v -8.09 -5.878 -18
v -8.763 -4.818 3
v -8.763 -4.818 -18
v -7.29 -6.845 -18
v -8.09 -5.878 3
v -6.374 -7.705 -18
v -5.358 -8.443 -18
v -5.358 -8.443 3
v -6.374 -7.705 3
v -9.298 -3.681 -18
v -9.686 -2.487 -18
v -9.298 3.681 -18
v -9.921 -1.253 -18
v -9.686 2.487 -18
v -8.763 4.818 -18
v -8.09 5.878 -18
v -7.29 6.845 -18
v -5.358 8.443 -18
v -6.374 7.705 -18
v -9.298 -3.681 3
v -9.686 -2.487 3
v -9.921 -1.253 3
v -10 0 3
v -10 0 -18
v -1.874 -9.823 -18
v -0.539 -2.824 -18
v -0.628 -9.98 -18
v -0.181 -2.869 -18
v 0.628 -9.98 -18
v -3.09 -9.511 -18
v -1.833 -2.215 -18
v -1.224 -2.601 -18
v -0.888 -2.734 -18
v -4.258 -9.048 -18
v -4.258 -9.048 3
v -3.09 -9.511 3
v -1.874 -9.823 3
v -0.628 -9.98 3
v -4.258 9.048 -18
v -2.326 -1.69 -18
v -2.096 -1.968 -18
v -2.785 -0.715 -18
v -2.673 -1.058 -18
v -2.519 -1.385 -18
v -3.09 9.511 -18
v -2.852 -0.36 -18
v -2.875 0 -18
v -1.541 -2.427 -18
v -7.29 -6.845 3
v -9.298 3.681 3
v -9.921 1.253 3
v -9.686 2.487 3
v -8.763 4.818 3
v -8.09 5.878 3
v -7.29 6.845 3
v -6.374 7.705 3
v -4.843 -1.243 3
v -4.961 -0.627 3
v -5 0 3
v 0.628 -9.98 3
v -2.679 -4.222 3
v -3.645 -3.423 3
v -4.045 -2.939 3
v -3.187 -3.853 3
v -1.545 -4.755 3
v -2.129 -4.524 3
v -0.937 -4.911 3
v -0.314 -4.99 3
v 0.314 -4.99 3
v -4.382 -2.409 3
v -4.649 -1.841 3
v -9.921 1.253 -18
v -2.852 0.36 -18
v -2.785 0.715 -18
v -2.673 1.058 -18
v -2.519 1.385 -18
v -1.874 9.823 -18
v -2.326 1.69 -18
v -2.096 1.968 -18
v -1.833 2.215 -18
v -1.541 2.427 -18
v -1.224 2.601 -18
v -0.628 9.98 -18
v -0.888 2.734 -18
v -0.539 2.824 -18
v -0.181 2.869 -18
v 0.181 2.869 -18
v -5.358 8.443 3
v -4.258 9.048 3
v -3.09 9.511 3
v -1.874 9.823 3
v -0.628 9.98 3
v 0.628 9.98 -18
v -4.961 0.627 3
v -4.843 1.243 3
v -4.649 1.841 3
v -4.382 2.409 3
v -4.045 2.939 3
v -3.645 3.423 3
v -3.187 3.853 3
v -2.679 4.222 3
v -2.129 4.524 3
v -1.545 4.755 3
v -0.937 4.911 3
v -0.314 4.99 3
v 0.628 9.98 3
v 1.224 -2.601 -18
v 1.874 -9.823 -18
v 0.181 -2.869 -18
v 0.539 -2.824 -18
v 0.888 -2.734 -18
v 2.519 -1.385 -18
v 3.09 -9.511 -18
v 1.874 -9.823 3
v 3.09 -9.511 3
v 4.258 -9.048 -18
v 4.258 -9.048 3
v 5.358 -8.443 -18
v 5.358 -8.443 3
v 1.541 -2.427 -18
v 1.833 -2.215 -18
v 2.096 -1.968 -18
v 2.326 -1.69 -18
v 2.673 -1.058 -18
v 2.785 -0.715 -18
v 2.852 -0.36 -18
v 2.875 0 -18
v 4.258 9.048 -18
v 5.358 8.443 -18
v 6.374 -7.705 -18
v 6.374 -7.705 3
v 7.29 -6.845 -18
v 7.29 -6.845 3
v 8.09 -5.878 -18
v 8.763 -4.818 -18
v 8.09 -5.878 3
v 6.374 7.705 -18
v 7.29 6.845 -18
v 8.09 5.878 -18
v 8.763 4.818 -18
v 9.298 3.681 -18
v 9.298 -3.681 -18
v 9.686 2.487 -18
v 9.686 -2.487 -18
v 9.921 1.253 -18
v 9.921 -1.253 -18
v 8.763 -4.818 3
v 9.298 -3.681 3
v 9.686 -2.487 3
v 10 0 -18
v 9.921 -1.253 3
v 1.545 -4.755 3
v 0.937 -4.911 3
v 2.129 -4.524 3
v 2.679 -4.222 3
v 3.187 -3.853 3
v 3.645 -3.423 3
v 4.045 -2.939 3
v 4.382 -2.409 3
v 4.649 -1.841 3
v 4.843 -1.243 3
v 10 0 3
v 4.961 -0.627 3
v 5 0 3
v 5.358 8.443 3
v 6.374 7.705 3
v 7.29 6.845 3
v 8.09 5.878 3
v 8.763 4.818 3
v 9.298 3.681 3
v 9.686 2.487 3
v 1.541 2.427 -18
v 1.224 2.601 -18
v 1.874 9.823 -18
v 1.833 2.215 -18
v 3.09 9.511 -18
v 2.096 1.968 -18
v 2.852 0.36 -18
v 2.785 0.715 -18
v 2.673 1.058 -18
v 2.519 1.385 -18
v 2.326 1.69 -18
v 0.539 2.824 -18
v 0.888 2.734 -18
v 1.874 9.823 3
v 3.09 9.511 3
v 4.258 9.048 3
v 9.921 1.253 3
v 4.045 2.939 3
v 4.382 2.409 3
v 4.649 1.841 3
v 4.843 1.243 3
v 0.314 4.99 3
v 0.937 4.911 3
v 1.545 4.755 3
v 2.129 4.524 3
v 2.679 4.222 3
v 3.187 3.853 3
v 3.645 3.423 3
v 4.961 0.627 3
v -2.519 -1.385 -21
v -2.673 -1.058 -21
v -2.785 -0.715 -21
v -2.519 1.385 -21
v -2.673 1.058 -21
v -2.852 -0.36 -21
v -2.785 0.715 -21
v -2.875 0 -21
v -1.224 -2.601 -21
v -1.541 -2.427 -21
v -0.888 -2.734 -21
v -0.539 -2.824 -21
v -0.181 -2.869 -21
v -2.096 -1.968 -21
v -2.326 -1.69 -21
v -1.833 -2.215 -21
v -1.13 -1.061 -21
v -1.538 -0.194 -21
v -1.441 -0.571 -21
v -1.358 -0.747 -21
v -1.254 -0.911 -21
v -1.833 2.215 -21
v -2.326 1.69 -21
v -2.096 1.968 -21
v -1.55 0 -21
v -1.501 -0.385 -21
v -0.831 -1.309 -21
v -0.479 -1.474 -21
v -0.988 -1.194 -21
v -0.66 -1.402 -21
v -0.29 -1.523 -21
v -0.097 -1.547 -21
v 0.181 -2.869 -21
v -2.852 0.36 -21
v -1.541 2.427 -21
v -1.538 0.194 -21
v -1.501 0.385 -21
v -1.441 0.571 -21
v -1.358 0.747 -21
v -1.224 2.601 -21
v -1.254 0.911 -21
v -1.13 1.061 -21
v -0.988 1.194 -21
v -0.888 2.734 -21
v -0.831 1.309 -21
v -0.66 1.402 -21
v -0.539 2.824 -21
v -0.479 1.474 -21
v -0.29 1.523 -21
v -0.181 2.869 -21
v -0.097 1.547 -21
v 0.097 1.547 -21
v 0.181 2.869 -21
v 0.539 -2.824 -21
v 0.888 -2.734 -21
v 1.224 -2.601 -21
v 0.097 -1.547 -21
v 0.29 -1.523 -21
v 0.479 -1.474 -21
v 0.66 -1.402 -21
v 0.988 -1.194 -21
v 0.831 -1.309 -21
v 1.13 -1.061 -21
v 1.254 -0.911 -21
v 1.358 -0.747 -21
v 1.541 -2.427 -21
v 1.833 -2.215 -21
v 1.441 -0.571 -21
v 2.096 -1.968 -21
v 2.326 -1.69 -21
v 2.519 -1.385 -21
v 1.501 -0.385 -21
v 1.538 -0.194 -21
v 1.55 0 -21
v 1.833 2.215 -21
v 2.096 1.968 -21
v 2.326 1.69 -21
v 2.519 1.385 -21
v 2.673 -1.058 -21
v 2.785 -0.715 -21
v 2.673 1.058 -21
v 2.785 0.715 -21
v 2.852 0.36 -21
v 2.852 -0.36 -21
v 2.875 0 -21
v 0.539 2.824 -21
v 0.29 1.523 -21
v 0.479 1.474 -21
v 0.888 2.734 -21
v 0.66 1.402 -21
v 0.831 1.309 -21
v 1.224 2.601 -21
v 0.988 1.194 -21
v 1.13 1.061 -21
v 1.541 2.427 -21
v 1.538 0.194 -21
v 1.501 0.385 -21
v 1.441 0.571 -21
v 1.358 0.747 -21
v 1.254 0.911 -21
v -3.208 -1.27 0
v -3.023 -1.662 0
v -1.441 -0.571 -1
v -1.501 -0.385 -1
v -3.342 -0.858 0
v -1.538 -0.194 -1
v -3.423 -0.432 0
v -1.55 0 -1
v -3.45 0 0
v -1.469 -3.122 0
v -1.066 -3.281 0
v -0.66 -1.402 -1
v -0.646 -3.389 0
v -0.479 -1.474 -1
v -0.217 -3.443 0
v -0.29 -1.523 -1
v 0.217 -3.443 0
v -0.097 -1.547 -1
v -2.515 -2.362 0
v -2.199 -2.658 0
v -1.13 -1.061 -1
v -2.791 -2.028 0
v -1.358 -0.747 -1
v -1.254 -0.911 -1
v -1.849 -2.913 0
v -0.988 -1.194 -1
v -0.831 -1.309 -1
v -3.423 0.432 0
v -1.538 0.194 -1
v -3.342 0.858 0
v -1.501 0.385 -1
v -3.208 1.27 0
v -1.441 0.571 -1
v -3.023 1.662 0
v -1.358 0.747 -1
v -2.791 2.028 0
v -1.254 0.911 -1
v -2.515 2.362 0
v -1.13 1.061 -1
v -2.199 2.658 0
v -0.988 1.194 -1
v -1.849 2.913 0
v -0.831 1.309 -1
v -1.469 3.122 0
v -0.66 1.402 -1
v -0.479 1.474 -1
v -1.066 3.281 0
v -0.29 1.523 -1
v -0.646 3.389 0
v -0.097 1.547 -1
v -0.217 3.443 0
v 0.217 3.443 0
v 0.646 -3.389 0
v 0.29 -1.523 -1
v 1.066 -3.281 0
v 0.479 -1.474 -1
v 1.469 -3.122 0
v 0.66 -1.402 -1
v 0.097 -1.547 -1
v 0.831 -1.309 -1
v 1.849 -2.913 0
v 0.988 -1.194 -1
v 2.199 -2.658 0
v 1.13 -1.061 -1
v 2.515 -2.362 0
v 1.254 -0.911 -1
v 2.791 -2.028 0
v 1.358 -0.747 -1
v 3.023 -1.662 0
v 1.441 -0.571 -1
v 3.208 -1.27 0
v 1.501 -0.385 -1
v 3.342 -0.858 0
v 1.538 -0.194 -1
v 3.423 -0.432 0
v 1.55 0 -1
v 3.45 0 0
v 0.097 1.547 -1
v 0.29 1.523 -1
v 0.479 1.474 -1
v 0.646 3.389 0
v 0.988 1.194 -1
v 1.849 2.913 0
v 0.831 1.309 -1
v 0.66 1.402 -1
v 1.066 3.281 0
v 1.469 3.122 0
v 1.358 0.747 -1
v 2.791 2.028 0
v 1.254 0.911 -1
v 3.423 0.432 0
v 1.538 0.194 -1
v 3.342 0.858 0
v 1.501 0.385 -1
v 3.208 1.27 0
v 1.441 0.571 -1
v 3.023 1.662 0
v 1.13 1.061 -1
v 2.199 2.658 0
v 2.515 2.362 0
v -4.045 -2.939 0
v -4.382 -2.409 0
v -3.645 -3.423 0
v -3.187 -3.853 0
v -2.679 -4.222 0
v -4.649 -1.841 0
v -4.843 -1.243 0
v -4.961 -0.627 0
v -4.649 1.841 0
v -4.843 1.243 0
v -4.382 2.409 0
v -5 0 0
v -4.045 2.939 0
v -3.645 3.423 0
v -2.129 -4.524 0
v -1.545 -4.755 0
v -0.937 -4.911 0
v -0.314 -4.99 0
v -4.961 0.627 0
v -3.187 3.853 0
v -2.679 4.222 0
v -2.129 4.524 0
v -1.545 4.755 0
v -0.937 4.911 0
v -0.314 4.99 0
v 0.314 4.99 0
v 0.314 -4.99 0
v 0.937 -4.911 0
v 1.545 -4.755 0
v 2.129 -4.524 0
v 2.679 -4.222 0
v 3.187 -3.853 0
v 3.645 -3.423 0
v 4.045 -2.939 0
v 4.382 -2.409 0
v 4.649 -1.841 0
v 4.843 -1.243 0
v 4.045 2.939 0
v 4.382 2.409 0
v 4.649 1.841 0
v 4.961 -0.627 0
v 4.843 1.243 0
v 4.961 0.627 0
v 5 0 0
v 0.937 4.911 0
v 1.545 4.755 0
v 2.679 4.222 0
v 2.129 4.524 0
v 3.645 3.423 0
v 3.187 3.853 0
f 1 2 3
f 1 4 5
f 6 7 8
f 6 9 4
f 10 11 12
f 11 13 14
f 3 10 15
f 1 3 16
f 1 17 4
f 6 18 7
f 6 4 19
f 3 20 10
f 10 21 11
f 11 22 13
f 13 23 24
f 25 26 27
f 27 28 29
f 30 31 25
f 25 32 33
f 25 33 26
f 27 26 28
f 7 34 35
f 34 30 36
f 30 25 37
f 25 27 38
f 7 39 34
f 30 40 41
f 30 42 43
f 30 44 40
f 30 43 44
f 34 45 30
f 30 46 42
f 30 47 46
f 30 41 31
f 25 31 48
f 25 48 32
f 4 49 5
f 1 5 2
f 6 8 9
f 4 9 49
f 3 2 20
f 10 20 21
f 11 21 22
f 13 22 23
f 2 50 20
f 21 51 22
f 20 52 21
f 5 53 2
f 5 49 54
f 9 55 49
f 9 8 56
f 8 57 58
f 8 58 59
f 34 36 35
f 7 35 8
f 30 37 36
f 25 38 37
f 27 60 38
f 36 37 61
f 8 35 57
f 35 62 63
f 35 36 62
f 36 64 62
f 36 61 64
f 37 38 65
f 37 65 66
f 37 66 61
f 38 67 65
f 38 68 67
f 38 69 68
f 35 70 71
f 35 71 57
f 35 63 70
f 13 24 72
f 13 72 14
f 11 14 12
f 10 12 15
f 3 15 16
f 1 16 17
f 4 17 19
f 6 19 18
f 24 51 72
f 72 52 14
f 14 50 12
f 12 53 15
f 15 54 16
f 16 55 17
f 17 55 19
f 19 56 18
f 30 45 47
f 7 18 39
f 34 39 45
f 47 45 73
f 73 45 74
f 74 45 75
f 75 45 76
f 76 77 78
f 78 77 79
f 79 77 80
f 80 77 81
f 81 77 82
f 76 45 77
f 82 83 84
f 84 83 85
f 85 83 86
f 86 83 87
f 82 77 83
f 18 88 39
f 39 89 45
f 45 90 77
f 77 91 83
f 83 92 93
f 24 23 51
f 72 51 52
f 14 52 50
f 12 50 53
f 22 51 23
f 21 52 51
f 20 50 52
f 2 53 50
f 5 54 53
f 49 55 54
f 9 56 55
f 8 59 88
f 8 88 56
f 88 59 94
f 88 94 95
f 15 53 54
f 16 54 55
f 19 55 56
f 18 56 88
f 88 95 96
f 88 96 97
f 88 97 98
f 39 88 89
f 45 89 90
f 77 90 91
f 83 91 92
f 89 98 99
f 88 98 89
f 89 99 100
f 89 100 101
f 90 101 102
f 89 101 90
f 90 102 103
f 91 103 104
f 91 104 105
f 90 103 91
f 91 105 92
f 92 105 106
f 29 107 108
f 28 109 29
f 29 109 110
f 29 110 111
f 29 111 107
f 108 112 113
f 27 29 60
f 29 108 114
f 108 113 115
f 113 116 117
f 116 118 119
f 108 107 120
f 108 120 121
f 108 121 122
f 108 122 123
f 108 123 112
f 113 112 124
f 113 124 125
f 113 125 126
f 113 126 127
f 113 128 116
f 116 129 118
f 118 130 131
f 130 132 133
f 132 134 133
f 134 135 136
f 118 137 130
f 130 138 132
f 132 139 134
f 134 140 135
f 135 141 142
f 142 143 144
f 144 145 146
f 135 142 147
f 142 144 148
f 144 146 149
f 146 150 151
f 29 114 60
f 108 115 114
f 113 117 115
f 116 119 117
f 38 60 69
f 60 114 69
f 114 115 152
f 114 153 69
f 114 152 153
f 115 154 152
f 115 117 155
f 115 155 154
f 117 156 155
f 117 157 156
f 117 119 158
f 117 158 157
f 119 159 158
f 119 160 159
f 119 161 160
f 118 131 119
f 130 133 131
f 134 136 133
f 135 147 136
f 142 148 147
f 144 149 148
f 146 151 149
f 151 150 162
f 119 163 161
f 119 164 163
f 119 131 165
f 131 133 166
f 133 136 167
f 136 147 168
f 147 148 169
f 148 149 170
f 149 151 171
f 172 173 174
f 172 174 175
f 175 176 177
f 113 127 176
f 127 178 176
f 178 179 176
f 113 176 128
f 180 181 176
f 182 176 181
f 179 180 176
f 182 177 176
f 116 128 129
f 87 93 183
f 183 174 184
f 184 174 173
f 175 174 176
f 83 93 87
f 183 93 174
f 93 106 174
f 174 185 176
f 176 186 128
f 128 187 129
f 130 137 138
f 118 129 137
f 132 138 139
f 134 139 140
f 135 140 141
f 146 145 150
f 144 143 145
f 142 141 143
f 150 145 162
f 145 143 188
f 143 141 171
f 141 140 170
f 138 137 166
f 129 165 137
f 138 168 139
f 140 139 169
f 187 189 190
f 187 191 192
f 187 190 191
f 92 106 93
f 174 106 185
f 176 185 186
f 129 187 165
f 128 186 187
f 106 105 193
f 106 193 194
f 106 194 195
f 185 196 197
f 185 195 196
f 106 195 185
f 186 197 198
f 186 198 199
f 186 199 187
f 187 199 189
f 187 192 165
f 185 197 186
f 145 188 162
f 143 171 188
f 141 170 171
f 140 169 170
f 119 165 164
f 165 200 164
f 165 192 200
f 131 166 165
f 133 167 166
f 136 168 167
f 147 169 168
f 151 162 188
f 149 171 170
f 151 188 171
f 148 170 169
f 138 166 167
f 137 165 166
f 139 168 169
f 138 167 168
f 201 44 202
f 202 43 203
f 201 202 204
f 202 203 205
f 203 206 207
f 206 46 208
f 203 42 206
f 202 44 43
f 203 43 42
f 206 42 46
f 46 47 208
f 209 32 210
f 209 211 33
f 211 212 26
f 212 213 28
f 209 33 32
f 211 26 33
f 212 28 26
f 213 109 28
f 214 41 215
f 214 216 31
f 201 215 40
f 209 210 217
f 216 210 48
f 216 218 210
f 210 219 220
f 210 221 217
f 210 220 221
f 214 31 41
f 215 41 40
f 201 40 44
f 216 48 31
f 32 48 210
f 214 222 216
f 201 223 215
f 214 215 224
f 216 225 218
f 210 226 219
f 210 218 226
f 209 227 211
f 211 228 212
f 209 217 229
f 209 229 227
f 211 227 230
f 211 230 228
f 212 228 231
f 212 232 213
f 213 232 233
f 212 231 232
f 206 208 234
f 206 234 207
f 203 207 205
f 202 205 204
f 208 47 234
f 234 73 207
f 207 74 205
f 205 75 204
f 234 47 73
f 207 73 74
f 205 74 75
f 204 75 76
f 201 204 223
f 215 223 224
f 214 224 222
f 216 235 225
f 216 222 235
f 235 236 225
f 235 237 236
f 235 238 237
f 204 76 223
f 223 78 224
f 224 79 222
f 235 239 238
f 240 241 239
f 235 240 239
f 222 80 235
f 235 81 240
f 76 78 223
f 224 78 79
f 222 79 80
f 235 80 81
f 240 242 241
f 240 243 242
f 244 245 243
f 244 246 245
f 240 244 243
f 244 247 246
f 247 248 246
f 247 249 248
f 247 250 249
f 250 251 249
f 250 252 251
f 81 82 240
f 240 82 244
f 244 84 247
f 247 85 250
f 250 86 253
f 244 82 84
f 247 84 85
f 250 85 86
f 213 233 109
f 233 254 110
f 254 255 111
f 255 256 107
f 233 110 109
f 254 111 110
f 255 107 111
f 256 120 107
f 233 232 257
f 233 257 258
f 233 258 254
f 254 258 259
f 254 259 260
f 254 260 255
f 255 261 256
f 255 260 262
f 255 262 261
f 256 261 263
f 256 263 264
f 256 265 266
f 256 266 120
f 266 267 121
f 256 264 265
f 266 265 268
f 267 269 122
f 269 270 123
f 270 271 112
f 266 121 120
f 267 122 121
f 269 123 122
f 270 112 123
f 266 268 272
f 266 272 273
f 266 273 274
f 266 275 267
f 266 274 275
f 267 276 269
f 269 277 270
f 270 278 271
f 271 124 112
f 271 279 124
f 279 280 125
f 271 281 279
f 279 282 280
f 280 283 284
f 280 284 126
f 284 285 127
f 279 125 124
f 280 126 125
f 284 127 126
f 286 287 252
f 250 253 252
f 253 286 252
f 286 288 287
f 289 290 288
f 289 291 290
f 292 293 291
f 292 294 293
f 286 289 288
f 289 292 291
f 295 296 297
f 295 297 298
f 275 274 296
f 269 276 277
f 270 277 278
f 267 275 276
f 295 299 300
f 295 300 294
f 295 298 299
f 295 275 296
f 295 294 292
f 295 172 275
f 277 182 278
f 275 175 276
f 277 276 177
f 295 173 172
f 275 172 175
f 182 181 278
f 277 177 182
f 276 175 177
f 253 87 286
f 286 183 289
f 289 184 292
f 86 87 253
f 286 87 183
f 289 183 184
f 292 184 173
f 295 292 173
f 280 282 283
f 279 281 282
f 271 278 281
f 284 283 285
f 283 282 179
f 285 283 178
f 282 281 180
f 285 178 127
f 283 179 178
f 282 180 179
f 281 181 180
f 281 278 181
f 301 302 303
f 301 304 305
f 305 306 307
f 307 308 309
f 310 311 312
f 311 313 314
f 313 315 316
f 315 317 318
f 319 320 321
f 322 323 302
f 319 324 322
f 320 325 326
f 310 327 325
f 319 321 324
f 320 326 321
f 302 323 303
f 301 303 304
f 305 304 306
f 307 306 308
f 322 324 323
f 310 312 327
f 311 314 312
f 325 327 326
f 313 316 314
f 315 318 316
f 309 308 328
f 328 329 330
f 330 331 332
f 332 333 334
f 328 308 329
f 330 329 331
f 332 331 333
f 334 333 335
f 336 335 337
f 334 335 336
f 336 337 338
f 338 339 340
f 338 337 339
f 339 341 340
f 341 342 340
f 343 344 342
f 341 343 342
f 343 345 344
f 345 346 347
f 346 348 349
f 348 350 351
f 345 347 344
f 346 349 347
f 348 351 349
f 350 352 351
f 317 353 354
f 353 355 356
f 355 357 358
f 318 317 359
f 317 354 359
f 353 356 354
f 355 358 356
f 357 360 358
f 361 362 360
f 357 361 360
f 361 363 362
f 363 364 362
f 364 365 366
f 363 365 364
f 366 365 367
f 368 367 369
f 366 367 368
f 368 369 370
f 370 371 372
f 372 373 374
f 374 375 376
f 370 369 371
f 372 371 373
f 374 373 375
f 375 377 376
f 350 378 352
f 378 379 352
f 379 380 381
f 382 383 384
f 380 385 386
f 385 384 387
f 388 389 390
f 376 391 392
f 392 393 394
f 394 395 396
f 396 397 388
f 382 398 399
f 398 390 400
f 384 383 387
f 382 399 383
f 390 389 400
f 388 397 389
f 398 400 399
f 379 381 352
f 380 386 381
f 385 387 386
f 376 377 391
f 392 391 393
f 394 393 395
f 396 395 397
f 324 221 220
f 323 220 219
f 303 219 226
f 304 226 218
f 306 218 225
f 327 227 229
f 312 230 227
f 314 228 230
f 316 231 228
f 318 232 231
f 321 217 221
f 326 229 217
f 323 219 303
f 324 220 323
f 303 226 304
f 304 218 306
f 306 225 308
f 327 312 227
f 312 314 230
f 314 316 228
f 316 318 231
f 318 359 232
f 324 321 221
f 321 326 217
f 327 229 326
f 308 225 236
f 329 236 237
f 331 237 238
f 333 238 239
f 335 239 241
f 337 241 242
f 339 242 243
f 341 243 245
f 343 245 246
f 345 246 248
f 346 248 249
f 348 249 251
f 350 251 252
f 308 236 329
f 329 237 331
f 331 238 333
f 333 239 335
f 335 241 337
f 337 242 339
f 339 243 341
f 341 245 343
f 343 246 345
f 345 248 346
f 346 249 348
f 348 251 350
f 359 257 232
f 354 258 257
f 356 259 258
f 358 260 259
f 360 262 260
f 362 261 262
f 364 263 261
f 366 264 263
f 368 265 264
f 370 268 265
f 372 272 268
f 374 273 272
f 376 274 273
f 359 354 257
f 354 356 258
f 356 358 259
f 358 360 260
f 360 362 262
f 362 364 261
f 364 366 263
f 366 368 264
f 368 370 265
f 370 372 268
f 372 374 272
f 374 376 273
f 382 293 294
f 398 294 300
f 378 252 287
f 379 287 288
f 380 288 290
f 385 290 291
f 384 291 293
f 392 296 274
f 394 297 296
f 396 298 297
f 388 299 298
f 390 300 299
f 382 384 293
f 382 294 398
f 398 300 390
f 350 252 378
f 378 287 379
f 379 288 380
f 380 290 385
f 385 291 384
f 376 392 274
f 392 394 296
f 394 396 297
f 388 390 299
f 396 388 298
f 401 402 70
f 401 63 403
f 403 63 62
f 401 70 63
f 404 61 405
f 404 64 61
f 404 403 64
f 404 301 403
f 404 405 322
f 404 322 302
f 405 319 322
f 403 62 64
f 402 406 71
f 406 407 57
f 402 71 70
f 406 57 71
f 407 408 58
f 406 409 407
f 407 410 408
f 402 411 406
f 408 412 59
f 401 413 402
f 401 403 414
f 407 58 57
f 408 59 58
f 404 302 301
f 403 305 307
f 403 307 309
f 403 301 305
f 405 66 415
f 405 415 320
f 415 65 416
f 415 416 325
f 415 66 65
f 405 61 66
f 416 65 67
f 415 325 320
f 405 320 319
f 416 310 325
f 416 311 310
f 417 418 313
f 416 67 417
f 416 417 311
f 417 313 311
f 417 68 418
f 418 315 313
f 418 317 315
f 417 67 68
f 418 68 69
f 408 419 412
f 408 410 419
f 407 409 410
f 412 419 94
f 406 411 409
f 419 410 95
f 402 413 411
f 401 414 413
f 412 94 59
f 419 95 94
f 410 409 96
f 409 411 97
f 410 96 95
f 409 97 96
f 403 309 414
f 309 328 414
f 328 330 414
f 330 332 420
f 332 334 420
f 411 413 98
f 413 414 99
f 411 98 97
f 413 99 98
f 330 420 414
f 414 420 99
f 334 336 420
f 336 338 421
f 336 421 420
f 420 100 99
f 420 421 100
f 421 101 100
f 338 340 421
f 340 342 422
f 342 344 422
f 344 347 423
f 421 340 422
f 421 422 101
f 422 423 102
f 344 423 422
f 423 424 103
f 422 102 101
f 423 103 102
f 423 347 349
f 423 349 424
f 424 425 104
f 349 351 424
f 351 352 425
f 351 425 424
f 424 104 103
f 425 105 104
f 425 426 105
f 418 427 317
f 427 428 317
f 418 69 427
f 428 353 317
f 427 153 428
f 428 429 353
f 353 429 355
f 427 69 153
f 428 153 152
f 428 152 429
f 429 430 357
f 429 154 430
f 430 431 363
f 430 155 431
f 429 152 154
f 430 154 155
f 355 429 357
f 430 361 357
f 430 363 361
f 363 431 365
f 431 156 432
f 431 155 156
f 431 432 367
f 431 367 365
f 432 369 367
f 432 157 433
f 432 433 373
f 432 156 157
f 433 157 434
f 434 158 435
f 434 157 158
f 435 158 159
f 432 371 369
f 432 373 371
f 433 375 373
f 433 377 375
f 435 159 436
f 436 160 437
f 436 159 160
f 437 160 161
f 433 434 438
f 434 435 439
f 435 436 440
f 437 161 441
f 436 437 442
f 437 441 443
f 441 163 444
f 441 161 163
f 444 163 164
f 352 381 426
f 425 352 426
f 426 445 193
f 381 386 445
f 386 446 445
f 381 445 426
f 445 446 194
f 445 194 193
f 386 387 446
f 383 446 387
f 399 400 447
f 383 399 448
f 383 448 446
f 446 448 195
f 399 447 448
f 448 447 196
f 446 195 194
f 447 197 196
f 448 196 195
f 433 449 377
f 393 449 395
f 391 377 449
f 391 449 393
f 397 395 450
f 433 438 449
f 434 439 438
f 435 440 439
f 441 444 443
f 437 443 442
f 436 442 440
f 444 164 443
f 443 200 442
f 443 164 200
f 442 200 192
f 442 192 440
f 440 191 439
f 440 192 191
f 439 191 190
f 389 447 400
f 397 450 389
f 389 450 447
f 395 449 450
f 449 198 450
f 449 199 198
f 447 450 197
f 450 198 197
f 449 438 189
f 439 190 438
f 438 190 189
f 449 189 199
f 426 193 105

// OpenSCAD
$fn = 50;

difference() {
	union() {
		translate(v = [0, 0, -18.0]) {
			cylinder(h = 21, r = 10.0);
		}
		#translate(v = [0, 0, -21.0]) {
			cylinder(h = 21, r = 2.875);
		}
	}
	union() {
		translate(v = [0, 0, 0]) {
			rotate(a = [0, 0, 0]) {
				difference() {
					union() {
						translate(v = [0, 0, -21.0]) {
							cylinder(h = 21, r = 1.25);
						}
						translate(v = [0, 0, -1.0]) {
							cylinder(h = 1.0, r1 = 1.55, r2 = 3.45);
						}
						translate(v = [0, 0, -21.0]) {
							cylinder(h = 21, r = 1.55);
						}
						translate(v = [0, 0, -21.0]) {
							cylinder(h = 21, r = 1.25);
						}
					}
					union();
				}
			}
		}
		#cylinder(h = 3, r = 5.0);
	}
}
